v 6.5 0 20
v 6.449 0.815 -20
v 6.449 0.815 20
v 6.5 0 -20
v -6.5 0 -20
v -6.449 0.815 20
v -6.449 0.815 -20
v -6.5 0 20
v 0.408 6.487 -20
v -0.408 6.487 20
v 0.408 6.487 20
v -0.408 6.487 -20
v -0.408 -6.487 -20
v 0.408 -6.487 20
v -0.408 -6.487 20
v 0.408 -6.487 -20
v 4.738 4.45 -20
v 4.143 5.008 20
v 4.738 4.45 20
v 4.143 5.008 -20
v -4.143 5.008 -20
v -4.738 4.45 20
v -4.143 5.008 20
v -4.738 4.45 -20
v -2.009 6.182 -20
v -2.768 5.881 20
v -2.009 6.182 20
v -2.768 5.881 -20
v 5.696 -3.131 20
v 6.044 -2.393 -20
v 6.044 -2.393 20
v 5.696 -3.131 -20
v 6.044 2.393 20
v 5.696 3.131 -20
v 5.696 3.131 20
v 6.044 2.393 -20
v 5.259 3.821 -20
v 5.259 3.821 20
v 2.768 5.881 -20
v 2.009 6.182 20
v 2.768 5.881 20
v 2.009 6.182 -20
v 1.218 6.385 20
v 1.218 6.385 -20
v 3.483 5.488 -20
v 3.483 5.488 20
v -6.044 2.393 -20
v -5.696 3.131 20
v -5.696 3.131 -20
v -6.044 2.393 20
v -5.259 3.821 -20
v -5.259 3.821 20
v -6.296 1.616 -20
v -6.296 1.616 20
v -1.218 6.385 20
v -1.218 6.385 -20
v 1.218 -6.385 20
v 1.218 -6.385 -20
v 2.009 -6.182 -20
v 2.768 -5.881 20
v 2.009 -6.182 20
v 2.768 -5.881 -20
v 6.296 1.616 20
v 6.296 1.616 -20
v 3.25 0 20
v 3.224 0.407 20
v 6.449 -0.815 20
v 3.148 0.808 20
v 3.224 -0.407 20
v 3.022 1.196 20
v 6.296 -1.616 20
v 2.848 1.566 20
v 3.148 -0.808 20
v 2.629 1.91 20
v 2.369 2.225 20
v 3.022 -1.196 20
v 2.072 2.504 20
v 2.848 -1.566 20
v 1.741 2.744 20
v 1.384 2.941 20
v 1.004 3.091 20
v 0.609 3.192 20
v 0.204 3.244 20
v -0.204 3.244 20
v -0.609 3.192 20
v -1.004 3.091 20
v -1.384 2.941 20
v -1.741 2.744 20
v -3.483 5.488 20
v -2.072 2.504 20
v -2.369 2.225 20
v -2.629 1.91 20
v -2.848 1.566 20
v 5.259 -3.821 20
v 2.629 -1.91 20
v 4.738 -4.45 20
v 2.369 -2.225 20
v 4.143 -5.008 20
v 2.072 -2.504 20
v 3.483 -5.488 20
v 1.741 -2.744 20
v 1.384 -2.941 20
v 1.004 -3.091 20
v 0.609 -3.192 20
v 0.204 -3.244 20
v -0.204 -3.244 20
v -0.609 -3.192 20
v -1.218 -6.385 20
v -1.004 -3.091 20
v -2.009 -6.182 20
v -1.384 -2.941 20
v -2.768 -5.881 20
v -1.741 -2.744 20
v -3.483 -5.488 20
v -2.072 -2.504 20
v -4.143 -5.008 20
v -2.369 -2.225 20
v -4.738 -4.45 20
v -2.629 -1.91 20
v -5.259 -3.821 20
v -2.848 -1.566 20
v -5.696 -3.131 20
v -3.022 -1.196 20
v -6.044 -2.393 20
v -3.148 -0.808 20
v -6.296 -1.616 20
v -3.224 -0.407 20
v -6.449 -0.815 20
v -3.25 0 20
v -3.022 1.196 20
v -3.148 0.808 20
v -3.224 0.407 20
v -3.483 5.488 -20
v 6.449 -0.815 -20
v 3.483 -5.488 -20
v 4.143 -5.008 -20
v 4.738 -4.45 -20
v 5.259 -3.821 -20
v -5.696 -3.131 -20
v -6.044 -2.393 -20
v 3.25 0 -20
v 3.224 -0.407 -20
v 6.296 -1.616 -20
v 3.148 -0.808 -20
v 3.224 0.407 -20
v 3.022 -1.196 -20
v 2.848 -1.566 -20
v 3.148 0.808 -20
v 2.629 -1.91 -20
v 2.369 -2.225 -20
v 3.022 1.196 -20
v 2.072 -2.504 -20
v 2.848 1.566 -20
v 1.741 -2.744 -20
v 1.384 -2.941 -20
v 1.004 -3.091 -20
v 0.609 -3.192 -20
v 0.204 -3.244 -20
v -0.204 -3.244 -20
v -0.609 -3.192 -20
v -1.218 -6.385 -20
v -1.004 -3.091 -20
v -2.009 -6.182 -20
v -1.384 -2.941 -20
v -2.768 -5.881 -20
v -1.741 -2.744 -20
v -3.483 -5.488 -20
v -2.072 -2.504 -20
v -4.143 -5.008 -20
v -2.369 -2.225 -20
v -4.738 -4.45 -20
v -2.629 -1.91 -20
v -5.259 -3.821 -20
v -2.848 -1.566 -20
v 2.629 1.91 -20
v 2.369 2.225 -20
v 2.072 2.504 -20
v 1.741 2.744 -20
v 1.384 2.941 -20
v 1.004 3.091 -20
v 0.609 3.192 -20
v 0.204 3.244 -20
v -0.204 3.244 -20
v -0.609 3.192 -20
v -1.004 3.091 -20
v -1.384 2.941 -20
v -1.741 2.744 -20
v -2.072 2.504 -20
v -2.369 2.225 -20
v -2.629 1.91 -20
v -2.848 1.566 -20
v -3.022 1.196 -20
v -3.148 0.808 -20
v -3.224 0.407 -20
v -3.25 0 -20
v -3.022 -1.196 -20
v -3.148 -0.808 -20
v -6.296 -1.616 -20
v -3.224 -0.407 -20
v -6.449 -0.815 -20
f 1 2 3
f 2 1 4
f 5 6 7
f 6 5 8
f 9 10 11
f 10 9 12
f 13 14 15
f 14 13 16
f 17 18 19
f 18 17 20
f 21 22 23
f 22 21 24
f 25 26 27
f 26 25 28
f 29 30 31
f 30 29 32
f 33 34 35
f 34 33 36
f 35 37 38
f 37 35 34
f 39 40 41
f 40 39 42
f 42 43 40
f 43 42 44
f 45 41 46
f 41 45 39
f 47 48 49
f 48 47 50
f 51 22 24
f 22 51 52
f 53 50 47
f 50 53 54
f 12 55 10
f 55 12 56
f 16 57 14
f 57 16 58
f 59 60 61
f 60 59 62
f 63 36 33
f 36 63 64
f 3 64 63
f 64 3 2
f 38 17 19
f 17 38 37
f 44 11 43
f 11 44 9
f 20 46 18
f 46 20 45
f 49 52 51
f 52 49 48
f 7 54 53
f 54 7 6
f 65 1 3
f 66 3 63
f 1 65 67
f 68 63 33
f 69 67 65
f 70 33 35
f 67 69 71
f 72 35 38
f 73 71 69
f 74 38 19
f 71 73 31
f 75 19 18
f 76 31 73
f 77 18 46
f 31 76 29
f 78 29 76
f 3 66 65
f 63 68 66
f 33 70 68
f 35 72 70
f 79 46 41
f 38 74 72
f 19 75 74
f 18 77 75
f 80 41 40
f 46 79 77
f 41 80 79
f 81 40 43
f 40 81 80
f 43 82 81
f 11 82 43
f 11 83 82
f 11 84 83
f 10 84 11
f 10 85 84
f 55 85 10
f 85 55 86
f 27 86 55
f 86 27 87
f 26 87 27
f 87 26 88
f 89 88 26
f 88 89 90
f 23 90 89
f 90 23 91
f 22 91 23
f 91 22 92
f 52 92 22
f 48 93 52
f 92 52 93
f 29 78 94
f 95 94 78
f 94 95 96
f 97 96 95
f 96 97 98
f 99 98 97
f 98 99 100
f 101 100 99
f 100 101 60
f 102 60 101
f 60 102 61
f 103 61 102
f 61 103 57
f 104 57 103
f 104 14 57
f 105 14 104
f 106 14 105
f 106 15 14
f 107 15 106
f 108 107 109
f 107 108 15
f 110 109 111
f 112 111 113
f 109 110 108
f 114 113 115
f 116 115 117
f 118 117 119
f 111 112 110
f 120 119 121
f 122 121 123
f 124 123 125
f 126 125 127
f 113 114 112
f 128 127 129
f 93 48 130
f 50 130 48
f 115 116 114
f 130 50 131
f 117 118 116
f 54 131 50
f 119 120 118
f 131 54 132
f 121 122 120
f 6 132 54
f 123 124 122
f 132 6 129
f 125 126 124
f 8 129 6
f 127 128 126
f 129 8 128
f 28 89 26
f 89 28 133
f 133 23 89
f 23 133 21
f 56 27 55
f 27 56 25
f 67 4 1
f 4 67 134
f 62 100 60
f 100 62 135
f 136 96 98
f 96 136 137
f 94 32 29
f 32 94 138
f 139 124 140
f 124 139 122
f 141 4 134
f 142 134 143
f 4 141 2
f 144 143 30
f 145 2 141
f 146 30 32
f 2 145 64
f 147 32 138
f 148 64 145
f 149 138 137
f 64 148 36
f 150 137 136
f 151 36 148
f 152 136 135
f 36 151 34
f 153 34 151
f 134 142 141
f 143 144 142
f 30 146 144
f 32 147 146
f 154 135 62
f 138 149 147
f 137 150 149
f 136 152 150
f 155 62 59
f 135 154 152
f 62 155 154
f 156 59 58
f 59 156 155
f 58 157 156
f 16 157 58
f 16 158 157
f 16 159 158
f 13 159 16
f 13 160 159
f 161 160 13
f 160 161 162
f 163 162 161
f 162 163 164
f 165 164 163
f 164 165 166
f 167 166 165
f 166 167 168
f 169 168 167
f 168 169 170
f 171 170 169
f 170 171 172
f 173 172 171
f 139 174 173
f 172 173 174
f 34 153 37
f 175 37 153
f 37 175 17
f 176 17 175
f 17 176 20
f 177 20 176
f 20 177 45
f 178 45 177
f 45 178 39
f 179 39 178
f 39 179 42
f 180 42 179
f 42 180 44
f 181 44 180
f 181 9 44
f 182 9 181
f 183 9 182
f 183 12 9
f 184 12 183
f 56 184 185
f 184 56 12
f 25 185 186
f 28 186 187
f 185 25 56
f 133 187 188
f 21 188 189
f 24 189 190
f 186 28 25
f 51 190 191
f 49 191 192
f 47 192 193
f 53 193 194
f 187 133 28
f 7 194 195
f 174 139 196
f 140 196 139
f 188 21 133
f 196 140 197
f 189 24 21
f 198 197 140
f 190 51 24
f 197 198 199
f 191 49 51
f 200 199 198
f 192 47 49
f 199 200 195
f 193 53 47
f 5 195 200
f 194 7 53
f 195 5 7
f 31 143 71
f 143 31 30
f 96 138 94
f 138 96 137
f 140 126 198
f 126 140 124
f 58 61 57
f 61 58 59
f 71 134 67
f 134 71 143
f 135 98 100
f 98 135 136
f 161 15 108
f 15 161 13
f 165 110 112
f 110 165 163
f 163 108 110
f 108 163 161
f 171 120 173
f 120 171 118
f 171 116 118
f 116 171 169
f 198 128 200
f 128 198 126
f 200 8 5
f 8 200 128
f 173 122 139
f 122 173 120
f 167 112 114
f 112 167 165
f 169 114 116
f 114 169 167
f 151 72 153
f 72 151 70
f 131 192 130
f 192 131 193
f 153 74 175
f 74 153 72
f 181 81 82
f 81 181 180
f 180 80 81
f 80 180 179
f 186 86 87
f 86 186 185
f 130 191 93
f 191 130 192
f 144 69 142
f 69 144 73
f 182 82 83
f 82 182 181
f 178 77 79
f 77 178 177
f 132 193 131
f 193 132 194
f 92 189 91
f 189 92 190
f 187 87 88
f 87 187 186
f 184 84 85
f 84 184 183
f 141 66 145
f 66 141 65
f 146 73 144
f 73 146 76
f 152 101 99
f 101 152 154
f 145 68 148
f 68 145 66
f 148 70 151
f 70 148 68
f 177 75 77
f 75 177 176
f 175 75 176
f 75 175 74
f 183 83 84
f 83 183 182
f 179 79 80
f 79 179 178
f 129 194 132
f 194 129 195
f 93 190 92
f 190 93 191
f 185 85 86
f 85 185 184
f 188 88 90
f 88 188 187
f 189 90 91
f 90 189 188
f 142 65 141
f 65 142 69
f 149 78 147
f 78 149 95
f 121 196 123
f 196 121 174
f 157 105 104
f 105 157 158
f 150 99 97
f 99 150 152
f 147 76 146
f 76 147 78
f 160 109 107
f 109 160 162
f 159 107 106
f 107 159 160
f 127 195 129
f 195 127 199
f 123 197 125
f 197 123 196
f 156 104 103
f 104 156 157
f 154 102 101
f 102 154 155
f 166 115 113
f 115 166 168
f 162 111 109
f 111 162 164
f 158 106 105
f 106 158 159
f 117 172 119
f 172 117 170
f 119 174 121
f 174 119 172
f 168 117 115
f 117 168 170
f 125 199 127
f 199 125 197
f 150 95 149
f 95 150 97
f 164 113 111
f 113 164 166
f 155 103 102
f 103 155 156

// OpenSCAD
$fn = 50;


difference() {
	union() {
		translate(v = [0, 0, -20.0000000000]) {
			cylinder(h = 40, r = 6.5000000000);
		}
	}
	union() {
		translate(v = [0, 0, -100.0000000000]) {
			cylinder(h = 200, r = 3.2500000000);
		}
	}
}
